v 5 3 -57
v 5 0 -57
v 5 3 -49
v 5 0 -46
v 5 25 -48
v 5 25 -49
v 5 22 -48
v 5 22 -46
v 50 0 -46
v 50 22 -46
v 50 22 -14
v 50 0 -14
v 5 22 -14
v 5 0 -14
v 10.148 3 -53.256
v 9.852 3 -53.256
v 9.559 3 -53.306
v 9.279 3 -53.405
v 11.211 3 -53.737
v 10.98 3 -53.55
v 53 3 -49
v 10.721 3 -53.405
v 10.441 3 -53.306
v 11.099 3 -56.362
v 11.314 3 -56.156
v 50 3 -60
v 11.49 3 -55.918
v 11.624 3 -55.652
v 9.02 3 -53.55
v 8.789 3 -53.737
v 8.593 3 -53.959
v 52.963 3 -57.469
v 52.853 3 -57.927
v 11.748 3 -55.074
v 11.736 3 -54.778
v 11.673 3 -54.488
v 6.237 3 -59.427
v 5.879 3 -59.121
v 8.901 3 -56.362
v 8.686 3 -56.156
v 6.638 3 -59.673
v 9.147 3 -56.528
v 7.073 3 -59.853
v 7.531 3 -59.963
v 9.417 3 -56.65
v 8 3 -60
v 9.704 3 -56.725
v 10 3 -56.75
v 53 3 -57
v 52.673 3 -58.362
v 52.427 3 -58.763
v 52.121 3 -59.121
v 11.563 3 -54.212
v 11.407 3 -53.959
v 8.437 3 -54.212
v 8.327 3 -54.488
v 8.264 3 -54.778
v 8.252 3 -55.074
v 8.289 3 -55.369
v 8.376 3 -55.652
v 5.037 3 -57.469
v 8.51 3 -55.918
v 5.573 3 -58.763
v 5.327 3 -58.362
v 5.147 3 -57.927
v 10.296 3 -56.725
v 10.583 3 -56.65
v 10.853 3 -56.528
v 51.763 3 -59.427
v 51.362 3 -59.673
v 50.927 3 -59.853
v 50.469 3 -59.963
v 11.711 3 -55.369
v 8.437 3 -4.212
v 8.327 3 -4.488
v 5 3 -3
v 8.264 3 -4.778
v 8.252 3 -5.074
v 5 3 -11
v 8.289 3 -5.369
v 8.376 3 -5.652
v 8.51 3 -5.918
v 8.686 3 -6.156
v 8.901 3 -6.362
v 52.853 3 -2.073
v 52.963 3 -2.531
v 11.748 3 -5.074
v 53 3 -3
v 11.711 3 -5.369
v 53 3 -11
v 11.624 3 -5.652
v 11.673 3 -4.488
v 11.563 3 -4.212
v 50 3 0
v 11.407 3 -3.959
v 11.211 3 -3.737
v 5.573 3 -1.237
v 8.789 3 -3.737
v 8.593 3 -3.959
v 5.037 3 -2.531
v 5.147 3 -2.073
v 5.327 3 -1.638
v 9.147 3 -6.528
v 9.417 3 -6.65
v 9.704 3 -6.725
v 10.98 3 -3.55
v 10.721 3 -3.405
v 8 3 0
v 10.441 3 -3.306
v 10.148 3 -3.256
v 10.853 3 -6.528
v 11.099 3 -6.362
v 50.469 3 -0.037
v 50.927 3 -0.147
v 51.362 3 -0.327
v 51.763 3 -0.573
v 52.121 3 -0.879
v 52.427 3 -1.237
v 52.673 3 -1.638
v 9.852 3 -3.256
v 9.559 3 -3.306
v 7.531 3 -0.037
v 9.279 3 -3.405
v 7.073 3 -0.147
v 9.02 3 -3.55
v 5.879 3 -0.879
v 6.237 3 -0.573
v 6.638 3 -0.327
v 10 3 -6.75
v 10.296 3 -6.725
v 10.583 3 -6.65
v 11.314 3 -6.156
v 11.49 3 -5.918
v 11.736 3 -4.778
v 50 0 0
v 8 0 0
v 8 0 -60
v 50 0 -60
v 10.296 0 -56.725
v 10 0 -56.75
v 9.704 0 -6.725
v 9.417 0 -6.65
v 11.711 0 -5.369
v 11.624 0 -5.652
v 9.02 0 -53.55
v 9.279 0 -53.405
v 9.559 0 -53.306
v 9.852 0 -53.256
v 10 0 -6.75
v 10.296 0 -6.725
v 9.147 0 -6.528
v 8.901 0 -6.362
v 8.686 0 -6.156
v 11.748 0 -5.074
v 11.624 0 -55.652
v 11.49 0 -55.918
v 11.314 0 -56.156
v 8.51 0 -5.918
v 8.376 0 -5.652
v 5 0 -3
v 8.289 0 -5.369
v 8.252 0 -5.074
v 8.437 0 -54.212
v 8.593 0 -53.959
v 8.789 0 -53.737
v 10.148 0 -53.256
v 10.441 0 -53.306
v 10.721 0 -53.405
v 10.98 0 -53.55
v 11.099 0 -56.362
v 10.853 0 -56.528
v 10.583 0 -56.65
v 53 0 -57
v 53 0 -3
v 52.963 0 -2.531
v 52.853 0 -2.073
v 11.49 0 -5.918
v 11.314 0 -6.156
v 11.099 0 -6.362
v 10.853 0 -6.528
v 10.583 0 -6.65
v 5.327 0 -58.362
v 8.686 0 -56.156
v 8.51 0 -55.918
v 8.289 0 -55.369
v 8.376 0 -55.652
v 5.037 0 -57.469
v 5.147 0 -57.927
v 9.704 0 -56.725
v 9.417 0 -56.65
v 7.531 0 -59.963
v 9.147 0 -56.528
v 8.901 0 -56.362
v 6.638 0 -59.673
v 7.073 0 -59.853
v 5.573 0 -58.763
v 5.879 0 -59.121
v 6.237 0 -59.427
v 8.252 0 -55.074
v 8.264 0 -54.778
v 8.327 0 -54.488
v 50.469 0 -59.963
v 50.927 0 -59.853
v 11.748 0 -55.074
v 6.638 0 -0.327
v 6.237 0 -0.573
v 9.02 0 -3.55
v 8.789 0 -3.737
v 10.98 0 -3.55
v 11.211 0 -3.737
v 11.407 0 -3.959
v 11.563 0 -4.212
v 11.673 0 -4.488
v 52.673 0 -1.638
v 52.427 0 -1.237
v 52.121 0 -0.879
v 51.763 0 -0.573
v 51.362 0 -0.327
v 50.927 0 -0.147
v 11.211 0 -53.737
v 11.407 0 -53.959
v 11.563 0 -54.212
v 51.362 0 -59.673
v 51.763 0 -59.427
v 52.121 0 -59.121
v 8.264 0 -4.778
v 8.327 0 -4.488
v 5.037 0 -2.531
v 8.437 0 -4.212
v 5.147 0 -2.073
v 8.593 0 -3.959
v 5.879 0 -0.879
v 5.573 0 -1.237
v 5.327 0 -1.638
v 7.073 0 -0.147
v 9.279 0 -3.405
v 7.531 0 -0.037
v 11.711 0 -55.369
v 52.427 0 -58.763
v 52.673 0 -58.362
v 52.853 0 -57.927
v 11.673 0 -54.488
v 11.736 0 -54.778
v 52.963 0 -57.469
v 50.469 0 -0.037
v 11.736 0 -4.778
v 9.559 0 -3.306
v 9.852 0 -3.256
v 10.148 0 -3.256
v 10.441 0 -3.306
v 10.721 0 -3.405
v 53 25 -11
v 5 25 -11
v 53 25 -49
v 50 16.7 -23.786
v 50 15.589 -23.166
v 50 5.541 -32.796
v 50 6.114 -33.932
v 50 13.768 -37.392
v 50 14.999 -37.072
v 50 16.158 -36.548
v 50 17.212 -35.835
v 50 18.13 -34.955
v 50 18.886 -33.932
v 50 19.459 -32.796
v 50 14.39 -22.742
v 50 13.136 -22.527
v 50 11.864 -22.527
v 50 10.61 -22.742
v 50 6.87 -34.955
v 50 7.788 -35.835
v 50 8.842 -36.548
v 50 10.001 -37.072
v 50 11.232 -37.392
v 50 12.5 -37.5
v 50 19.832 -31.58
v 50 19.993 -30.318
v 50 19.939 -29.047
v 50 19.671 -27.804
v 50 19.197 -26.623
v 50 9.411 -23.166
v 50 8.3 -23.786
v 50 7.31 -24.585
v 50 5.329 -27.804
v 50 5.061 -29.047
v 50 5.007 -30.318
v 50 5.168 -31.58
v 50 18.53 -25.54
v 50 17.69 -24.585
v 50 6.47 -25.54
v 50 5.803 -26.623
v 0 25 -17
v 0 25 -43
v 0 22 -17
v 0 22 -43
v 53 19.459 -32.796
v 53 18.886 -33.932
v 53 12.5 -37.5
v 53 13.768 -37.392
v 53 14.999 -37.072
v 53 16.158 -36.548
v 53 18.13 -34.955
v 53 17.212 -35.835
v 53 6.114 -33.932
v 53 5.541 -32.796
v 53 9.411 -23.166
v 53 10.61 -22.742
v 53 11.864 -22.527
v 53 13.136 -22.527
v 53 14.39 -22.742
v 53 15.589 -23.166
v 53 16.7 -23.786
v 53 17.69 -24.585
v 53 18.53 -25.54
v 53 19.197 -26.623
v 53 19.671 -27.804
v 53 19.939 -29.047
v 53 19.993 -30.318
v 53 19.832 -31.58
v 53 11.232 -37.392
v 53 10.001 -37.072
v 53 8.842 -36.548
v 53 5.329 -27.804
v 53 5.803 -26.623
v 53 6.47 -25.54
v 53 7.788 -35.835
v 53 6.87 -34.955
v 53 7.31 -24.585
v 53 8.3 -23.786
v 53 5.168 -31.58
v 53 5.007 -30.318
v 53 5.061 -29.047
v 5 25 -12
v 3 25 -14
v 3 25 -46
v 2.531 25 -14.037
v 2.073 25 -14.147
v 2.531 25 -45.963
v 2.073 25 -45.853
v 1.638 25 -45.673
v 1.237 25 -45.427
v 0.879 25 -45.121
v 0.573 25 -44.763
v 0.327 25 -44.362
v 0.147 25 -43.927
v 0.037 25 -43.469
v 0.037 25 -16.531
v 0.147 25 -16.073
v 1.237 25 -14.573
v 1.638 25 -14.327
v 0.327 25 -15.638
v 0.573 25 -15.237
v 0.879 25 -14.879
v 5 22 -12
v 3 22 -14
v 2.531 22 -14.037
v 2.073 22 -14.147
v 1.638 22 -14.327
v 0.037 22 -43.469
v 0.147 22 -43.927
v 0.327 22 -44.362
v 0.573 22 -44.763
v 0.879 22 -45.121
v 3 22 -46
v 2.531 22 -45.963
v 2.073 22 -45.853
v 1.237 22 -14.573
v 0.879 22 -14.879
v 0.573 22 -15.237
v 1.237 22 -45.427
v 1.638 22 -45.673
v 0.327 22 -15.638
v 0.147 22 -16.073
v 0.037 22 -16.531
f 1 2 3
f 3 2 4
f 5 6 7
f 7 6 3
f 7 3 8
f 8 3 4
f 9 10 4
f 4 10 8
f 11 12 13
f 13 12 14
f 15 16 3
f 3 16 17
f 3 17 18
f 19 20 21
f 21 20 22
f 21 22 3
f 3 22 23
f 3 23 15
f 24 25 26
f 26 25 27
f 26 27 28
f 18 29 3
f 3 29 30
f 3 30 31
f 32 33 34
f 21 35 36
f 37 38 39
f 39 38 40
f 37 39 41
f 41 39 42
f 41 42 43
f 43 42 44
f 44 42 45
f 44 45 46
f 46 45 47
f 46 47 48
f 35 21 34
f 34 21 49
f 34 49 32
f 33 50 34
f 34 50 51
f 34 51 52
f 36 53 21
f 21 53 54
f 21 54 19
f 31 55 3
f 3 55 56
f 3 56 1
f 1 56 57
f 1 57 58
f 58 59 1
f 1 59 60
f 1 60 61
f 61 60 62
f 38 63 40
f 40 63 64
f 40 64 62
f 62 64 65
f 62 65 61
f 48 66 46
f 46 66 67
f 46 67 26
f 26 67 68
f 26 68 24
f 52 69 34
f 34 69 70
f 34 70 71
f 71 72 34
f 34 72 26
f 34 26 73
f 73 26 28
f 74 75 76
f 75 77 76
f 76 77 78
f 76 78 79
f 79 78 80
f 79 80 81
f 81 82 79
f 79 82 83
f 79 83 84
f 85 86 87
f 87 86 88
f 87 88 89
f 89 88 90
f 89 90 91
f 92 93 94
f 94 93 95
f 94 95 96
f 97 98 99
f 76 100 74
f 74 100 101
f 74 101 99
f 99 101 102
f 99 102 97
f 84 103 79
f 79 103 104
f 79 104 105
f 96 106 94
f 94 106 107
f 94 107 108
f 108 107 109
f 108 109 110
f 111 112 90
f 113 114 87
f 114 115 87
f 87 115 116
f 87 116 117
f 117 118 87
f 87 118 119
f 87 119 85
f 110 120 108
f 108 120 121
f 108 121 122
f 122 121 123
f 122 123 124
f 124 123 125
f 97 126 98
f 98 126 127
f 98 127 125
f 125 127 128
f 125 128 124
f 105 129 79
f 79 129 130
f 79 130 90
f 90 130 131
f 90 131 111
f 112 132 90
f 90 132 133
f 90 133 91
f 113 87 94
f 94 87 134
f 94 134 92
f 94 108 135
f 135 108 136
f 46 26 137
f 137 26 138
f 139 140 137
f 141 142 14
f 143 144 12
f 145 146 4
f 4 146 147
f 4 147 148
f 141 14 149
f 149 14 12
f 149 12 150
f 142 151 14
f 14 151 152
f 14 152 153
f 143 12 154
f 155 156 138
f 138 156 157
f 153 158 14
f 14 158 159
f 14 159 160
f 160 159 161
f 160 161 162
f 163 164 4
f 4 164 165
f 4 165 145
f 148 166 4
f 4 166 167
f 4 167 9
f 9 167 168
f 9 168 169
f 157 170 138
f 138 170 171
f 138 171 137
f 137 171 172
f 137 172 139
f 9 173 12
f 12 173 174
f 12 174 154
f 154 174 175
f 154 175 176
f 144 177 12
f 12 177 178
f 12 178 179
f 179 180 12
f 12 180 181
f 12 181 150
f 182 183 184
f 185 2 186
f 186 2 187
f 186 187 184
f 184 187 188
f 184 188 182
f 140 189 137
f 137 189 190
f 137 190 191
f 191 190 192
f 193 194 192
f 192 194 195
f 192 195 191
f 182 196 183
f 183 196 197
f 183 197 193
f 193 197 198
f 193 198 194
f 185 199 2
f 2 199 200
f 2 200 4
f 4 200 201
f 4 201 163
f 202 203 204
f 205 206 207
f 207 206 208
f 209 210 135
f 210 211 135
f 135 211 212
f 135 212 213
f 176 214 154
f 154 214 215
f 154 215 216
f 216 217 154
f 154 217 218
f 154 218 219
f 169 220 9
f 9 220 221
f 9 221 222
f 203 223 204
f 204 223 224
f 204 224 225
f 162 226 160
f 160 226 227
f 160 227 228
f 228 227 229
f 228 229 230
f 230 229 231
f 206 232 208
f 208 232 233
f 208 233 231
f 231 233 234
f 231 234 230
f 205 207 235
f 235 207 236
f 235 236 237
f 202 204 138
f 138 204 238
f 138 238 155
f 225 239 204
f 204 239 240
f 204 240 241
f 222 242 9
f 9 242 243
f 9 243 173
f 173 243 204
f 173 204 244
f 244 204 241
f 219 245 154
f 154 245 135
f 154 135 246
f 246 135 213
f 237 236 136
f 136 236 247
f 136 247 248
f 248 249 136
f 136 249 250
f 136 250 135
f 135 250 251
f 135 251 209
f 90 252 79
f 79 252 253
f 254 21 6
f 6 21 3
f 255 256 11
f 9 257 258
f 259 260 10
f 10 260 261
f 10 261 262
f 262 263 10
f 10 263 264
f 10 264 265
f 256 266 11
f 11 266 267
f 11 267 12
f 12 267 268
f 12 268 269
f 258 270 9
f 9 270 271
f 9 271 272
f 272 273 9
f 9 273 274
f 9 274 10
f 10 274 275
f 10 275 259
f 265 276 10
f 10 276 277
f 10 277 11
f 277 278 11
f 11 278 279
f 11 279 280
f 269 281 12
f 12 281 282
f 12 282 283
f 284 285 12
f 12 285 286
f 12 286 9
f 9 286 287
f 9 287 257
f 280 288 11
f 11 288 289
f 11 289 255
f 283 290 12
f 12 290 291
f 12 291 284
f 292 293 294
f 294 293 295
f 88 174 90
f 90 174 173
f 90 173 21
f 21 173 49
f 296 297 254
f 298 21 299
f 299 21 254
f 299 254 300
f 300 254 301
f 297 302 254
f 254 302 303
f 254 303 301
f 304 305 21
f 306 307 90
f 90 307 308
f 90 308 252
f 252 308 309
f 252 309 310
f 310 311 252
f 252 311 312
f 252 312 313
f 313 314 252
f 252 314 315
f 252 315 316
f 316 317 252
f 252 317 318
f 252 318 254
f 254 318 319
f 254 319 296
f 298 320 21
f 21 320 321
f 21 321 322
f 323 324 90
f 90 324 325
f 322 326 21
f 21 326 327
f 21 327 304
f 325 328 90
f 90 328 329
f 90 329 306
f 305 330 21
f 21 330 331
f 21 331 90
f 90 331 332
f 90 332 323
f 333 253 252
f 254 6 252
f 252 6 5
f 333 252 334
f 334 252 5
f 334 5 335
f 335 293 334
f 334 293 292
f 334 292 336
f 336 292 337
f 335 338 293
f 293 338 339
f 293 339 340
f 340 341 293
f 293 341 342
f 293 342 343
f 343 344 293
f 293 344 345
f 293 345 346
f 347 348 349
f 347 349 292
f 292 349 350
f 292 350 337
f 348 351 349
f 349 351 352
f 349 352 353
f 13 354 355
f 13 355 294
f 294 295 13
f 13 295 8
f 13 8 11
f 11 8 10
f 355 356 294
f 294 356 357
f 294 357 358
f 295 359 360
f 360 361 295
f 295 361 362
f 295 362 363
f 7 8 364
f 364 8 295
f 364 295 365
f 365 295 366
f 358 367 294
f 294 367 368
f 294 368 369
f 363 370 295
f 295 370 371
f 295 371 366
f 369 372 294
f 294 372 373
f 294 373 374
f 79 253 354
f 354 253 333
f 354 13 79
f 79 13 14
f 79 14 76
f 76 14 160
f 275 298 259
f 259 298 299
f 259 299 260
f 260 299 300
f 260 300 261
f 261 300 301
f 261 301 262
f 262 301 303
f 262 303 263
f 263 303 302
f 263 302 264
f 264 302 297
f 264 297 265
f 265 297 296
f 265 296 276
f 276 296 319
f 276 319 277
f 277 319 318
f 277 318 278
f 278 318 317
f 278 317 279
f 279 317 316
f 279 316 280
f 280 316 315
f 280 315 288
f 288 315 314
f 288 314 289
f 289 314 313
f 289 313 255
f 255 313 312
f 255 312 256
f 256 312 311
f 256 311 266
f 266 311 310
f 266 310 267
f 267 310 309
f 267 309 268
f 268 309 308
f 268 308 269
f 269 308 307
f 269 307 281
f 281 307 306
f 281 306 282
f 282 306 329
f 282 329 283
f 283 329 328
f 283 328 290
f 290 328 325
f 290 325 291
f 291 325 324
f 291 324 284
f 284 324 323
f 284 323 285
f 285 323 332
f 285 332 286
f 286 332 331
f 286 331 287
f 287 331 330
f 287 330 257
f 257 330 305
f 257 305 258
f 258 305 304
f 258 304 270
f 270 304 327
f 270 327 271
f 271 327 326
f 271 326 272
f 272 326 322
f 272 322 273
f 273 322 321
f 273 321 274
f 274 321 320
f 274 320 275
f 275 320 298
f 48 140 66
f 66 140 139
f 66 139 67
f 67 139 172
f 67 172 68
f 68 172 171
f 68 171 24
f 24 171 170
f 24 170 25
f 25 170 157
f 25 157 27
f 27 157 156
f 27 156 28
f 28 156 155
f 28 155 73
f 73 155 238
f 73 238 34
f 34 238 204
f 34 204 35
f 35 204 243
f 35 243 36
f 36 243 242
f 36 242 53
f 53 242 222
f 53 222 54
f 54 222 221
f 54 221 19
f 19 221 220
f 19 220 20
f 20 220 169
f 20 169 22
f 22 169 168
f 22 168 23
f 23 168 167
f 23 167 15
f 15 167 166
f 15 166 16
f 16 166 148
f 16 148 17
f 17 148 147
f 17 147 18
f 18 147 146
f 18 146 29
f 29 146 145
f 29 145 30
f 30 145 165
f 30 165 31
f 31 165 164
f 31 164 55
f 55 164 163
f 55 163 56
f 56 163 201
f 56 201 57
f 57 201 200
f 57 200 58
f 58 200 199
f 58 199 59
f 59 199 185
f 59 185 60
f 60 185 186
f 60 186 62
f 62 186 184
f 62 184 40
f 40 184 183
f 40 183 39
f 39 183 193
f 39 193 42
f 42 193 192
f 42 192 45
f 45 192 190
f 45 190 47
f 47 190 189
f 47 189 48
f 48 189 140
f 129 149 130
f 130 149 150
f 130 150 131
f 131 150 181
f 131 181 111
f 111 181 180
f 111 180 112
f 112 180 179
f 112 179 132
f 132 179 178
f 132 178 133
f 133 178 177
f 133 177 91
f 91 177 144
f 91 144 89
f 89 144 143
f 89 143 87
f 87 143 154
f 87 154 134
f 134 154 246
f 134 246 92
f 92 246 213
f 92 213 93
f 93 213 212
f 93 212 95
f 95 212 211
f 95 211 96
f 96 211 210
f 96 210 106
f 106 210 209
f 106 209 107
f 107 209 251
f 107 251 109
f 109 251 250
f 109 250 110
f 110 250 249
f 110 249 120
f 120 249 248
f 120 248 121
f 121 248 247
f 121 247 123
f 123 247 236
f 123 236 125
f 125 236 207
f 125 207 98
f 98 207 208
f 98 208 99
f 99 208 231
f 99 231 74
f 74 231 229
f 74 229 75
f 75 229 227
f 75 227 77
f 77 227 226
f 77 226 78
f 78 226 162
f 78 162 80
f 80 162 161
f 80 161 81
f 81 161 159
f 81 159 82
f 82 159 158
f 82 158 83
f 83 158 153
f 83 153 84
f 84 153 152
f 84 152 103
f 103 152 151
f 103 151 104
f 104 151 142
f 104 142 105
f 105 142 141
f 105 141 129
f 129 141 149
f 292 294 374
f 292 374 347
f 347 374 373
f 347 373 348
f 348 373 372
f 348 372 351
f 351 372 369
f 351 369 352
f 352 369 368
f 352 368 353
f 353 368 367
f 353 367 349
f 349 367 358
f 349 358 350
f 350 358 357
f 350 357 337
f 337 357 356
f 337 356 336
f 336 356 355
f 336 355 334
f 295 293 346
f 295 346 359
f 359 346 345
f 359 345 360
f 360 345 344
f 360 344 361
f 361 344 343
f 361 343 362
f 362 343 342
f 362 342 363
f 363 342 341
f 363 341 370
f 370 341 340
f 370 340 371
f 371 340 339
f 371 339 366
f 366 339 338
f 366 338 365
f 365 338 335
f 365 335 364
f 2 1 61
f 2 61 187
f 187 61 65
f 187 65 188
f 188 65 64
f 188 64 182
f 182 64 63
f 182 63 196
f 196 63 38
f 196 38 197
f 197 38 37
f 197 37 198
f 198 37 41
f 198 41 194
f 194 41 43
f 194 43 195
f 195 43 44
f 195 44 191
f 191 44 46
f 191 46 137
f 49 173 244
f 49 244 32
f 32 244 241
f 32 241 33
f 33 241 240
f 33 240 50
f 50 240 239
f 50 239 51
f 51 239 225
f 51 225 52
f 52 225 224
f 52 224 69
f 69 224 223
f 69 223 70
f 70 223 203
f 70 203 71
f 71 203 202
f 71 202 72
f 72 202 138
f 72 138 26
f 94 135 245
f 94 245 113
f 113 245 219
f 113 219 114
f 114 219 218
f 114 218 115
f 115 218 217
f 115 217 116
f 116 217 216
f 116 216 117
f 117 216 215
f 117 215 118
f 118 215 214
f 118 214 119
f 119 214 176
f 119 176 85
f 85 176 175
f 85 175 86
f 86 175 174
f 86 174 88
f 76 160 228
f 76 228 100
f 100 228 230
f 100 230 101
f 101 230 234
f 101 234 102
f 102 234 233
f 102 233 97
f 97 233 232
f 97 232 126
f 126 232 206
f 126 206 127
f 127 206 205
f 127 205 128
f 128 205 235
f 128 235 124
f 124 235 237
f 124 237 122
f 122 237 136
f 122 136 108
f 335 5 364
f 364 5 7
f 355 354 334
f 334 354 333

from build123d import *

# Parameters (mm, degrees)
SKETCH_1_W          = 53
SKETCH_1_H          = 60
EXTRUDE_1_DEPTH     = 3
EXTRUDE_2_DEPTH     = 22
SKETCH_3_W          = 32
SKETCH_3_H          = 3
EXTRUDE_3_DEPTH     = 50
CUT_EXTRUDE_1_DEPTH = 5
SKETCH_6_W          = 32
SKETCH_6_H          = 3
CUT_EXTRUDE_2_DEPTH = 45
SKETCH_7_R          = 7.5
CUT_EXTRUDE_3_DEPTH = 45
SKETCH_8_R          = 1.75
CUT_EXTRUDE_4_DEPTH = 45
FILLET_1_R          = 3
CHAMFER_1_SIZE      = 2


with BuildPart() as part:
    # 草图1 → 凸台-拉伸1 (new body)
    with BuildSketch(Plane(origin=(0, 0, 0), x_dir=(1, 0, 0), z_dir=(0, 1, 0))):
        with Locations((26.5, 30)):
            Rectangle(SKETCH_1_W, SKETCH_1_H)
    extrude(amount=EXTRUDE_1_DEPTH)

    # 草图2 → 凸台-拉伸2 (add)
    with BuildSketch(Plane(origin=(0, 3, 0), x_dir=(1, 0, 0), z_dir=(0, 1, 0))):
        Polygon((0, 49), (53, 49), (53, 11), (0, 11), (0, 14), (50, 14), (50, 46), (0, 46), align=None)
    extrude(amount=EXTRUDE_2_DEPTH)

    # 草图3 → 凸台-拉伸3 (add)
    with BuildSketch(Plane.ZY.offset(-50)):
        with Locations((-30, 23.5)):
            Rectangle(SKETCH_3_W, SKETCH_3_H)
    extrude(amount=EXTRUDE_3_DEPTH)

    # 草图5 → 切除-拉伸1 (cut)
    with BuildSketch(Plane.ZY):
        Polygon((-49, 25), (-49, 3), (-60, 3), (-60, 0), (0, 0), (0, 3), (-11, 3), (-11, 25), (-14, 25), (-14, 22), (-46, 22), (-46, 25), align=None)
    extrude(amount=-CUT_EXTRUDE_1_DEPTH, mode=Mode.SUBTRACT)

    # 草图6 → 切除-拉伸2 (cut)
    with BuildSketch(Plane.ZY.offset(-5)):
        with Locations((-30, 1.5)):
            Rectangle(SKETCH_6_W, SKETCH_6_H)
    extrude(amount=-CUT_EXTRUDE_2_DEPTH, mode=Mode.SUBTRACT)

    # 草图7 → 切除-拉伸3 (cut)
    with BuildSketch(Plane(origin=(53, 0, 0), x_dir=(0, 0, -1), z_dir=(1, 0, 0))):
        with Locations((30, 12.5)):
            Circle(SKETCH_7_R)
    extrude(amount=-CUT_EXTRUDE_3_DEPTH, mode=Mode.SUBTRACT)

    # 草图8 → 切除-拉伸4 (cut)
    with BuildSketch(Plane.XZ):
        with Locations(Location((10, -5, 0), (0, 0, 270))):
            Circle(SKETCH_8_R)
        with Locations(Location((10, -55, 0), (0, 0, 270))):
            Circle(SKETCH_8_R)
    extrude(amount=-CUT_EXTRUDE_4_DEPTH, mode=Mode.SUBTRACT)

    # 圆角1
    fillet_1_edges = [part.edges().sort_by_distance(p)[0] for p in [
        (0, 23.5, -46),
        (0, 23.5, -14),
        (5, 1.5, 0),
        (5, 1.5, -60),
        (53, 1.5, -60),
        (53, 1.5, 0),
    ]]
    fillet(fillet_1_edges, radius=FILLET_1_R)

    # 倒角1
    chamfer_1_edges = [part.edges().sort_by_distance(p)[0] for p in [
        (5, 23.5, -46),
        (5, 23.5, -14),
    ]]
    chamfer(chamfer_1_edges, length=CHAMFER_1_SIZE - 0.0001)  # a hair under: the kernel refuses the full size


solid = part.part
